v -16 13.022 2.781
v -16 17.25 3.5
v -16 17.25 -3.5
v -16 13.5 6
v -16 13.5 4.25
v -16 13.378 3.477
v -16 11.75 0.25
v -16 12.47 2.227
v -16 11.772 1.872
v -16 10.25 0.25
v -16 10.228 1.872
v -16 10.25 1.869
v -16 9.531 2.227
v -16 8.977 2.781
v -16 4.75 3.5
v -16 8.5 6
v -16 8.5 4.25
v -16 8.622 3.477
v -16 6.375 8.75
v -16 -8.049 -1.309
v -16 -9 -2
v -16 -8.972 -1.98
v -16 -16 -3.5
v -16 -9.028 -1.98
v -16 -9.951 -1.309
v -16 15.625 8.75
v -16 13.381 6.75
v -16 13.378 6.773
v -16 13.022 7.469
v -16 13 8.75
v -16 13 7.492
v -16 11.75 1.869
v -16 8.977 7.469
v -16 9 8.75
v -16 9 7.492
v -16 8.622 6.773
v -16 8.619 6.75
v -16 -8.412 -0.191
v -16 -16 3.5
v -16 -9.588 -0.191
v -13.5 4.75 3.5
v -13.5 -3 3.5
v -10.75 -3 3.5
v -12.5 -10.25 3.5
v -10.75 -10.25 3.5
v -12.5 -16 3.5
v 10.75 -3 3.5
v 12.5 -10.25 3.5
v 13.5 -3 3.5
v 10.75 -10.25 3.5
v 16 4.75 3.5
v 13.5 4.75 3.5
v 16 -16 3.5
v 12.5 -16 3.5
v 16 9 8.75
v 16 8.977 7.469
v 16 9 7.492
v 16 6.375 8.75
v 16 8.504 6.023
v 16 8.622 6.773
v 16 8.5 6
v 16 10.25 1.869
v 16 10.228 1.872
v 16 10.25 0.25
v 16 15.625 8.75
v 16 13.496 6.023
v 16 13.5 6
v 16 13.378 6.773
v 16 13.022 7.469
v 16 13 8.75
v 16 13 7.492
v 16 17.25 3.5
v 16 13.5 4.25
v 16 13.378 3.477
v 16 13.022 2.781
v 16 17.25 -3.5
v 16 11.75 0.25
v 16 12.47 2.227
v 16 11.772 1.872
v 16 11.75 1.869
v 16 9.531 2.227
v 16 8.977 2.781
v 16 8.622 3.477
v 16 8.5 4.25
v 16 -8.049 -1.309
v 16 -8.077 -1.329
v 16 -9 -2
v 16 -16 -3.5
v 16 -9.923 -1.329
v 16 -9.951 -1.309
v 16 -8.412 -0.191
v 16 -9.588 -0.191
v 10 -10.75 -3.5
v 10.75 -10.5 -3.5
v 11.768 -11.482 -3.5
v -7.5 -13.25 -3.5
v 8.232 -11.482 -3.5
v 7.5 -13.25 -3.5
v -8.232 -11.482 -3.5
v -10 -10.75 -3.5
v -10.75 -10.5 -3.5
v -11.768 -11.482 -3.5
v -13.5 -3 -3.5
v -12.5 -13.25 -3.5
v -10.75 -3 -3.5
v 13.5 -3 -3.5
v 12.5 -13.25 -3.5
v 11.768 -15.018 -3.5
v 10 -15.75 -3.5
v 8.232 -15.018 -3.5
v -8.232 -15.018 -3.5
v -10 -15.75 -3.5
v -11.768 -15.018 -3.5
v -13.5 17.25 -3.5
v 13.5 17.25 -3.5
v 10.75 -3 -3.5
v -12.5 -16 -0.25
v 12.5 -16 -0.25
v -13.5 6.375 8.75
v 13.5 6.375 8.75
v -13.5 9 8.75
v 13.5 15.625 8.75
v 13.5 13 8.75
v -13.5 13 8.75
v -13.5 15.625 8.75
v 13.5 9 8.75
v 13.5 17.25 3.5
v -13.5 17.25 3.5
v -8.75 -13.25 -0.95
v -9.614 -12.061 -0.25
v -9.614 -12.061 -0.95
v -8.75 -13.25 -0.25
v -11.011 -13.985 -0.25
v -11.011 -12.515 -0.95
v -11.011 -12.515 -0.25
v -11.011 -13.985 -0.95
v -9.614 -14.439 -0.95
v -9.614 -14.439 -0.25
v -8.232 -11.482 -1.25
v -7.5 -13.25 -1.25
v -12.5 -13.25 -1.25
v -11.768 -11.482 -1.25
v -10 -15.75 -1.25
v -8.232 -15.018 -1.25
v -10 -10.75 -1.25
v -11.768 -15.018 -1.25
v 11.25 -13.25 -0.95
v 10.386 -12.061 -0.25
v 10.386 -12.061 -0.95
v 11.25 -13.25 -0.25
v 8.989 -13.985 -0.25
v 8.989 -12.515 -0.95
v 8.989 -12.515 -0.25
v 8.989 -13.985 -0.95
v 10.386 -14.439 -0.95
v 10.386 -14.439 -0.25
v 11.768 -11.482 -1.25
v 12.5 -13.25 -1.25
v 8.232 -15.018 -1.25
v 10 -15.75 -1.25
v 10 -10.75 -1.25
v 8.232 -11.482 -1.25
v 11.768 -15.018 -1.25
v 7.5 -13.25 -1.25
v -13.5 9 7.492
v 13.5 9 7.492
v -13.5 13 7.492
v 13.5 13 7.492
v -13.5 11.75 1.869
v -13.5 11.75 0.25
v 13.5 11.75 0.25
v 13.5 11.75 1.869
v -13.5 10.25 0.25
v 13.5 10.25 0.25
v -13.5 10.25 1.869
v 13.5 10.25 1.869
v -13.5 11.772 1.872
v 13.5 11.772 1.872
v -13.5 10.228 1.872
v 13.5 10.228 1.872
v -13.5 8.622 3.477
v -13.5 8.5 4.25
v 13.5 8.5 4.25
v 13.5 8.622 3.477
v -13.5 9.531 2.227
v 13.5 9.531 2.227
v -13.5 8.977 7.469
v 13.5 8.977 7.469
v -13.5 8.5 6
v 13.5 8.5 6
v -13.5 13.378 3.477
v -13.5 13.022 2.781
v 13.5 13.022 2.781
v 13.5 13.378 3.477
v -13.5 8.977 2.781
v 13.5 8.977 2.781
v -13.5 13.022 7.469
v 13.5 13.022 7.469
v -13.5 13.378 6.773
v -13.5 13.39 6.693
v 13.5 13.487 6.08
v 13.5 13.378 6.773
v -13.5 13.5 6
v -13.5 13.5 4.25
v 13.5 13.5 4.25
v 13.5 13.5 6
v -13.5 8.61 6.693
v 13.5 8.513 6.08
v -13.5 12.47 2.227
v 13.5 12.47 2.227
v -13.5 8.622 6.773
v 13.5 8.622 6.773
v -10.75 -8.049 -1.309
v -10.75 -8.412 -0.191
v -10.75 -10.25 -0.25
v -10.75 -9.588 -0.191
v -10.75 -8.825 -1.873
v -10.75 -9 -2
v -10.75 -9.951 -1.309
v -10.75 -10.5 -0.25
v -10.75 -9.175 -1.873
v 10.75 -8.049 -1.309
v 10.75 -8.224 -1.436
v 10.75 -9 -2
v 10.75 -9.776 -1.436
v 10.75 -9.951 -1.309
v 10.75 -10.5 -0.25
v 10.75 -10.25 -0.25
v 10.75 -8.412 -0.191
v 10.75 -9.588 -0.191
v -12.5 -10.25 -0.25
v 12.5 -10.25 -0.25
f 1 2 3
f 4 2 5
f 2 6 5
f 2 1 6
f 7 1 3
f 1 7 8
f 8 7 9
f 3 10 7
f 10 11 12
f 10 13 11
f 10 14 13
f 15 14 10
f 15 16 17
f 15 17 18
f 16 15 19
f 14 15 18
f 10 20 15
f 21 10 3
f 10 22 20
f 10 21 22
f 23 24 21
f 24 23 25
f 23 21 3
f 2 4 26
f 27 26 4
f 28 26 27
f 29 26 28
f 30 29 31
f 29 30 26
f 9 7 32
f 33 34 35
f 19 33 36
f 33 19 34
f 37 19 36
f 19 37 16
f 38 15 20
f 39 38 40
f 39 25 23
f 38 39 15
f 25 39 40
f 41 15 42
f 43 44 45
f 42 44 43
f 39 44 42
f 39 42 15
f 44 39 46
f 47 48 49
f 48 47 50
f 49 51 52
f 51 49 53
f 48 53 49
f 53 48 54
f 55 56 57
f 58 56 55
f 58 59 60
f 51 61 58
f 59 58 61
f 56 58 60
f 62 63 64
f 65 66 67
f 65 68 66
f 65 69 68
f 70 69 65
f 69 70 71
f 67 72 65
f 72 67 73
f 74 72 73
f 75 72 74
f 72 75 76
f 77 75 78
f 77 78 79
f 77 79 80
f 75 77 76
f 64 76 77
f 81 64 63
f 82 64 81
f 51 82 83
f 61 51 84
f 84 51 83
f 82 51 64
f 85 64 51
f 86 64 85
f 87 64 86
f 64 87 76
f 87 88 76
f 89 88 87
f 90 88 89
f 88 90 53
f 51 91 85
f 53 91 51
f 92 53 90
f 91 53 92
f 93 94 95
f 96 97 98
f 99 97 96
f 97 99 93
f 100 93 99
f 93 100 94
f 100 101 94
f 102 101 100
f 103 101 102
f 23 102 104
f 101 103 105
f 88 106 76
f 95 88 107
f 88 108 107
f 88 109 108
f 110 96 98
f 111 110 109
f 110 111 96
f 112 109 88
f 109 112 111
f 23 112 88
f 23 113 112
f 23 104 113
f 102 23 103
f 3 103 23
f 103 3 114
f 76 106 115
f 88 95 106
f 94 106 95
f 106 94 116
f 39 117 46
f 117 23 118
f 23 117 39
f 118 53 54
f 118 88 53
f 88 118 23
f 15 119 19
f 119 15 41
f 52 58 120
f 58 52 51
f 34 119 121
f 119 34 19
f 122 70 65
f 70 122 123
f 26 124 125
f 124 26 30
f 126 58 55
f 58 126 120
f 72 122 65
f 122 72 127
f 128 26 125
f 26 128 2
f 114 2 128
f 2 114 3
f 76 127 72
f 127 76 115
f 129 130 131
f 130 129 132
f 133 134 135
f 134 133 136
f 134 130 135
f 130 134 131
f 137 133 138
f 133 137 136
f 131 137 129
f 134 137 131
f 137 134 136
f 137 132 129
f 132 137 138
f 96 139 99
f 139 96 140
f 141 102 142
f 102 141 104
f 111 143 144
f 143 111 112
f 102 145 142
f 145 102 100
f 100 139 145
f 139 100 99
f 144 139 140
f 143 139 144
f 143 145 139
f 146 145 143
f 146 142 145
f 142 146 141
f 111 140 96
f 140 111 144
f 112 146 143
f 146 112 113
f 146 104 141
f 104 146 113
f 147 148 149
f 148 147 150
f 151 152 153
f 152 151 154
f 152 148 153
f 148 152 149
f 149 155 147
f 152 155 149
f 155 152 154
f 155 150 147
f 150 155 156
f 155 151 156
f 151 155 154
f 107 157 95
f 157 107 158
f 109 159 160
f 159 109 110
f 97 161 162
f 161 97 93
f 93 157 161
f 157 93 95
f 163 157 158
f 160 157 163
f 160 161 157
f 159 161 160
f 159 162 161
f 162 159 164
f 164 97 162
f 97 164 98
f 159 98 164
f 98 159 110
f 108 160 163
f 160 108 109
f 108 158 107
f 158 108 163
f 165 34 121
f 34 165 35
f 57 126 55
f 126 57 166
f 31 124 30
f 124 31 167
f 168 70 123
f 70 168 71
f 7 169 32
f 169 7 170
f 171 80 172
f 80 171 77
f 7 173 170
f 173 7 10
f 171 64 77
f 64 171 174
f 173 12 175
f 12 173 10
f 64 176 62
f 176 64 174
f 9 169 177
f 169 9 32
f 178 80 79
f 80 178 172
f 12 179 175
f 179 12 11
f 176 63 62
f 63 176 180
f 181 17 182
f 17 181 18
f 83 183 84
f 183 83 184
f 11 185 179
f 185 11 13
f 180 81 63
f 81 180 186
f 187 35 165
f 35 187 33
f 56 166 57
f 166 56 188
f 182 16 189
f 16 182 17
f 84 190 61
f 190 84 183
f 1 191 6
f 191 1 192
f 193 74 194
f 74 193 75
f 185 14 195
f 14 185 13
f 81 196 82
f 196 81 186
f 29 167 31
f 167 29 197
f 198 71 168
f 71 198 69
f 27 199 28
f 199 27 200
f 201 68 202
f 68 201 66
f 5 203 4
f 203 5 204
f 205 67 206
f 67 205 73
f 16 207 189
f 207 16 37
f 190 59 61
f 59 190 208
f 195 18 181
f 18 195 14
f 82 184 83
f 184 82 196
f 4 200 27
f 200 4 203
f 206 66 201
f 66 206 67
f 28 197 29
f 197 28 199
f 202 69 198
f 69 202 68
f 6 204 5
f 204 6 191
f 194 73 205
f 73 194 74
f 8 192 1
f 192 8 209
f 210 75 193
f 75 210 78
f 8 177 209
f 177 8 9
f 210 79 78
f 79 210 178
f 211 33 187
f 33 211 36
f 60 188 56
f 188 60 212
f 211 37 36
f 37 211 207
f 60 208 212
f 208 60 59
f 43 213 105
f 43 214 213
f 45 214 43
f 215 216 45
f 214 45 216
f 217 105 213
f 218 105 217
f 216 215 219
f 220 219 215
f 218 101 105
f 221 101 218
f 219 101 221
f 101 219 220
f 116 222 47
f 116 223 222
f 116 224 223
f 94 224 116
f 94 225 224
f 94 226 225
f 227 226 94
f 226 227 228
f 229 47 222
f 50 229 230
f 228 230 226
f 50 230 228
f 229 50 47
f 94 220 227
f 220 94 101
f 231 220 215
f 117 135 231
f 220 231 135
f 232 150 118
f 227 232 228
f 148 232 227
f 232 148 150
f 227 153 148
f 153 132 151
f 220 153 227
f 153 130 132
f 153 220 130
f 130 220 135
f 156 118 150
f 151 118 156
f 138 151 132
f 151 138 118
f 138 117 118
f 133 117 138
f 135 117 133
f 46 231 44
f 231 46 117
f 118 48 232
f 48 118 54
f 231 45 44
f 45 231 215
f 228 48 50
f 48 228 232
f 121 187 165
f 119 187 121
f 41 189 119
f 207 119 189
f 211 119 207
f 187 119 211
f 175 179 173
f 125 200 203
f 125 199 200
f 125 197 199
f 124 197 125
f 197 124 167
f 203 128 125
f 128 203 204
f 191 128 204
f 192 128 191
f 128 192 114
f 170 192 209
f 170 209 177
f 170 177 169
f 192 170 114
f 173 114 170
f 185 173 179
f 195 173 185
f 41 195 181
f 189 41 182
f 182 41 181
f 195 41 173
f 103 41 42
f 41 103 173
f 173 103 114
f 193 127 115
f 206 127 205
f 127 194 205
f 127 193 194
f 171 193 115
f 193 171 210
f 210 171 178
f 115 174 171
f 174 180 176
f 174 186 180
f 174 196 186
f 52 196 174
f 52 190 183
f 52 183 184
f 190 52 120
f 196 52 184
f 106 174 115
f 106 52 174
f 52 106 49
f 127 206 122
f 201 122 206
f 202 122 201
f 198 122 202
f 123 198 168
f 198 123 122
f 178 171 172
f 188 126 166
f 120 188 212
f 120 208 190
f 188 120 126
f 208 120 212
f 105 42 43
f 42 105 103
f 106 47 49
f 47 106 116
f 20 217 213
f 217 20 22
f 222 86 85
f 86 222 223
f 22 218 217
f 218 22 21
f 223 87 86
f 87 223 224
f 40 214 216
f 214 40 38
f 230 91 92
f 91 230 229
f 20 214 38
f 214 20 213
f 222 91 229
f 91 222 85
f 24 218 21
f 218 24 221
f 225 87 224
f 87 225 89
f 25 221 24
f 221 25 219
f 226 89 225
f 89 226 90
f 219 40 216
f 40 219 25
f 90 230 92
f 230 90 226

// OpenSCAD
/**
 * rally.scad
 * 
 * Created by Diego Viejo
 * 
 * 11/Dic/2015
 * 
 * This is my attemp on creating a chassis for a rally slot car
 * 
 */

//guide arm's holder
//work in progress: checking all sizes is still needed
numSlots = 1;
guideWidth = 32;
guideInternalWidth = 21.5;
guideHeight = 7;
guideHoleHeight = 2.5;
guideSupportLength = 7;
guideLength = 32; //guideSupportLength + numSlots*4- 2;
engineHolderHoleSep = 20;

//front axle
axleLength = 27;
bearingDiam = 5;
axleHeight = 6.75;


module guide(chassisLink=1)
difference()
{
    union()
    {
        cube([guideWidth, guideLength, guideHeight], center=true);
        translate([0, -guideLength/2 + axleLength, 0]) hull()
        {
            cube([guideWidth, bearingDiam*2.5, guideHeight], center = true);
            translate([0, 0, axleHeight+1]) cube([guideWidth, bearingDiam*1.85, 2], center=true);
        }
    }
    
    //main holes
    translate([0, guideSupportLength-1.5, 0]) cube([guideInternalWidth, guideLength, guideHeight*2], center=true);
    translate([0, 0, 3.25]) cube([guideInternalWidth, guideLength+2, guideHeight], center=true);
    translate([0, -(guideLength-6)/2-0.25, 3.25]) cube([25, 6, guideHeight], center=true);
    translate([0, guideSupportLength+6, 0]) cube([guideWidth - 2*2.5, guideLength, guideHeight*3], center=true);
    
    for(i=[1:numSlots])
    {
        translate([-guideWidth/2-1, -guideLength/2 + guideSupportLength +i*4-4, -guideHeight/2+guideHoleHeight])
            rotate([0, 90, 0]) cylinder(d=2, h=guideWidth+2);
    }
    
    if(chassisLink==1)
    for(i=[-1,1])
    {
        translate([i*engineHolderHoleSep/2, (guideSupportLength-guideLength)/2-0.75, -guideHeight/2-1+guideHeight/4+1.5+0.3]) cylinder(d=2.5, h=guideHeight/2+2);
        translate([i*engineHolderHoleSep/2, (guideSupportLength-guideLength)/2-0.75, -guideHeight/2-1]) cylinder(d=5, h=guideHeight/4+1.5);
    }
    
    translate([0, -guideLength/2 + axleLength, axleHeight-bearingDiam/2]) 
    {
        translate([0, 0, guideHeight/2]) cube([guideWidth+2, bearingDiam*0.8, guideHeight], center = true);
        translate([0, 0, -0.5]) cube([guideWidth+2, 1.5, guideHeight], center = true);
        rotate([0, 90, 0]) hull()
        {
            cylinder(d=bearingDiam, h=guideWidth+2, center=true, $fn=20);
            translate([-1.75, 0, 0]) cylinder(d=bearingDiam, h=guideWidth+2, center=true, $fn=20);
        }
    }
}

guide();
